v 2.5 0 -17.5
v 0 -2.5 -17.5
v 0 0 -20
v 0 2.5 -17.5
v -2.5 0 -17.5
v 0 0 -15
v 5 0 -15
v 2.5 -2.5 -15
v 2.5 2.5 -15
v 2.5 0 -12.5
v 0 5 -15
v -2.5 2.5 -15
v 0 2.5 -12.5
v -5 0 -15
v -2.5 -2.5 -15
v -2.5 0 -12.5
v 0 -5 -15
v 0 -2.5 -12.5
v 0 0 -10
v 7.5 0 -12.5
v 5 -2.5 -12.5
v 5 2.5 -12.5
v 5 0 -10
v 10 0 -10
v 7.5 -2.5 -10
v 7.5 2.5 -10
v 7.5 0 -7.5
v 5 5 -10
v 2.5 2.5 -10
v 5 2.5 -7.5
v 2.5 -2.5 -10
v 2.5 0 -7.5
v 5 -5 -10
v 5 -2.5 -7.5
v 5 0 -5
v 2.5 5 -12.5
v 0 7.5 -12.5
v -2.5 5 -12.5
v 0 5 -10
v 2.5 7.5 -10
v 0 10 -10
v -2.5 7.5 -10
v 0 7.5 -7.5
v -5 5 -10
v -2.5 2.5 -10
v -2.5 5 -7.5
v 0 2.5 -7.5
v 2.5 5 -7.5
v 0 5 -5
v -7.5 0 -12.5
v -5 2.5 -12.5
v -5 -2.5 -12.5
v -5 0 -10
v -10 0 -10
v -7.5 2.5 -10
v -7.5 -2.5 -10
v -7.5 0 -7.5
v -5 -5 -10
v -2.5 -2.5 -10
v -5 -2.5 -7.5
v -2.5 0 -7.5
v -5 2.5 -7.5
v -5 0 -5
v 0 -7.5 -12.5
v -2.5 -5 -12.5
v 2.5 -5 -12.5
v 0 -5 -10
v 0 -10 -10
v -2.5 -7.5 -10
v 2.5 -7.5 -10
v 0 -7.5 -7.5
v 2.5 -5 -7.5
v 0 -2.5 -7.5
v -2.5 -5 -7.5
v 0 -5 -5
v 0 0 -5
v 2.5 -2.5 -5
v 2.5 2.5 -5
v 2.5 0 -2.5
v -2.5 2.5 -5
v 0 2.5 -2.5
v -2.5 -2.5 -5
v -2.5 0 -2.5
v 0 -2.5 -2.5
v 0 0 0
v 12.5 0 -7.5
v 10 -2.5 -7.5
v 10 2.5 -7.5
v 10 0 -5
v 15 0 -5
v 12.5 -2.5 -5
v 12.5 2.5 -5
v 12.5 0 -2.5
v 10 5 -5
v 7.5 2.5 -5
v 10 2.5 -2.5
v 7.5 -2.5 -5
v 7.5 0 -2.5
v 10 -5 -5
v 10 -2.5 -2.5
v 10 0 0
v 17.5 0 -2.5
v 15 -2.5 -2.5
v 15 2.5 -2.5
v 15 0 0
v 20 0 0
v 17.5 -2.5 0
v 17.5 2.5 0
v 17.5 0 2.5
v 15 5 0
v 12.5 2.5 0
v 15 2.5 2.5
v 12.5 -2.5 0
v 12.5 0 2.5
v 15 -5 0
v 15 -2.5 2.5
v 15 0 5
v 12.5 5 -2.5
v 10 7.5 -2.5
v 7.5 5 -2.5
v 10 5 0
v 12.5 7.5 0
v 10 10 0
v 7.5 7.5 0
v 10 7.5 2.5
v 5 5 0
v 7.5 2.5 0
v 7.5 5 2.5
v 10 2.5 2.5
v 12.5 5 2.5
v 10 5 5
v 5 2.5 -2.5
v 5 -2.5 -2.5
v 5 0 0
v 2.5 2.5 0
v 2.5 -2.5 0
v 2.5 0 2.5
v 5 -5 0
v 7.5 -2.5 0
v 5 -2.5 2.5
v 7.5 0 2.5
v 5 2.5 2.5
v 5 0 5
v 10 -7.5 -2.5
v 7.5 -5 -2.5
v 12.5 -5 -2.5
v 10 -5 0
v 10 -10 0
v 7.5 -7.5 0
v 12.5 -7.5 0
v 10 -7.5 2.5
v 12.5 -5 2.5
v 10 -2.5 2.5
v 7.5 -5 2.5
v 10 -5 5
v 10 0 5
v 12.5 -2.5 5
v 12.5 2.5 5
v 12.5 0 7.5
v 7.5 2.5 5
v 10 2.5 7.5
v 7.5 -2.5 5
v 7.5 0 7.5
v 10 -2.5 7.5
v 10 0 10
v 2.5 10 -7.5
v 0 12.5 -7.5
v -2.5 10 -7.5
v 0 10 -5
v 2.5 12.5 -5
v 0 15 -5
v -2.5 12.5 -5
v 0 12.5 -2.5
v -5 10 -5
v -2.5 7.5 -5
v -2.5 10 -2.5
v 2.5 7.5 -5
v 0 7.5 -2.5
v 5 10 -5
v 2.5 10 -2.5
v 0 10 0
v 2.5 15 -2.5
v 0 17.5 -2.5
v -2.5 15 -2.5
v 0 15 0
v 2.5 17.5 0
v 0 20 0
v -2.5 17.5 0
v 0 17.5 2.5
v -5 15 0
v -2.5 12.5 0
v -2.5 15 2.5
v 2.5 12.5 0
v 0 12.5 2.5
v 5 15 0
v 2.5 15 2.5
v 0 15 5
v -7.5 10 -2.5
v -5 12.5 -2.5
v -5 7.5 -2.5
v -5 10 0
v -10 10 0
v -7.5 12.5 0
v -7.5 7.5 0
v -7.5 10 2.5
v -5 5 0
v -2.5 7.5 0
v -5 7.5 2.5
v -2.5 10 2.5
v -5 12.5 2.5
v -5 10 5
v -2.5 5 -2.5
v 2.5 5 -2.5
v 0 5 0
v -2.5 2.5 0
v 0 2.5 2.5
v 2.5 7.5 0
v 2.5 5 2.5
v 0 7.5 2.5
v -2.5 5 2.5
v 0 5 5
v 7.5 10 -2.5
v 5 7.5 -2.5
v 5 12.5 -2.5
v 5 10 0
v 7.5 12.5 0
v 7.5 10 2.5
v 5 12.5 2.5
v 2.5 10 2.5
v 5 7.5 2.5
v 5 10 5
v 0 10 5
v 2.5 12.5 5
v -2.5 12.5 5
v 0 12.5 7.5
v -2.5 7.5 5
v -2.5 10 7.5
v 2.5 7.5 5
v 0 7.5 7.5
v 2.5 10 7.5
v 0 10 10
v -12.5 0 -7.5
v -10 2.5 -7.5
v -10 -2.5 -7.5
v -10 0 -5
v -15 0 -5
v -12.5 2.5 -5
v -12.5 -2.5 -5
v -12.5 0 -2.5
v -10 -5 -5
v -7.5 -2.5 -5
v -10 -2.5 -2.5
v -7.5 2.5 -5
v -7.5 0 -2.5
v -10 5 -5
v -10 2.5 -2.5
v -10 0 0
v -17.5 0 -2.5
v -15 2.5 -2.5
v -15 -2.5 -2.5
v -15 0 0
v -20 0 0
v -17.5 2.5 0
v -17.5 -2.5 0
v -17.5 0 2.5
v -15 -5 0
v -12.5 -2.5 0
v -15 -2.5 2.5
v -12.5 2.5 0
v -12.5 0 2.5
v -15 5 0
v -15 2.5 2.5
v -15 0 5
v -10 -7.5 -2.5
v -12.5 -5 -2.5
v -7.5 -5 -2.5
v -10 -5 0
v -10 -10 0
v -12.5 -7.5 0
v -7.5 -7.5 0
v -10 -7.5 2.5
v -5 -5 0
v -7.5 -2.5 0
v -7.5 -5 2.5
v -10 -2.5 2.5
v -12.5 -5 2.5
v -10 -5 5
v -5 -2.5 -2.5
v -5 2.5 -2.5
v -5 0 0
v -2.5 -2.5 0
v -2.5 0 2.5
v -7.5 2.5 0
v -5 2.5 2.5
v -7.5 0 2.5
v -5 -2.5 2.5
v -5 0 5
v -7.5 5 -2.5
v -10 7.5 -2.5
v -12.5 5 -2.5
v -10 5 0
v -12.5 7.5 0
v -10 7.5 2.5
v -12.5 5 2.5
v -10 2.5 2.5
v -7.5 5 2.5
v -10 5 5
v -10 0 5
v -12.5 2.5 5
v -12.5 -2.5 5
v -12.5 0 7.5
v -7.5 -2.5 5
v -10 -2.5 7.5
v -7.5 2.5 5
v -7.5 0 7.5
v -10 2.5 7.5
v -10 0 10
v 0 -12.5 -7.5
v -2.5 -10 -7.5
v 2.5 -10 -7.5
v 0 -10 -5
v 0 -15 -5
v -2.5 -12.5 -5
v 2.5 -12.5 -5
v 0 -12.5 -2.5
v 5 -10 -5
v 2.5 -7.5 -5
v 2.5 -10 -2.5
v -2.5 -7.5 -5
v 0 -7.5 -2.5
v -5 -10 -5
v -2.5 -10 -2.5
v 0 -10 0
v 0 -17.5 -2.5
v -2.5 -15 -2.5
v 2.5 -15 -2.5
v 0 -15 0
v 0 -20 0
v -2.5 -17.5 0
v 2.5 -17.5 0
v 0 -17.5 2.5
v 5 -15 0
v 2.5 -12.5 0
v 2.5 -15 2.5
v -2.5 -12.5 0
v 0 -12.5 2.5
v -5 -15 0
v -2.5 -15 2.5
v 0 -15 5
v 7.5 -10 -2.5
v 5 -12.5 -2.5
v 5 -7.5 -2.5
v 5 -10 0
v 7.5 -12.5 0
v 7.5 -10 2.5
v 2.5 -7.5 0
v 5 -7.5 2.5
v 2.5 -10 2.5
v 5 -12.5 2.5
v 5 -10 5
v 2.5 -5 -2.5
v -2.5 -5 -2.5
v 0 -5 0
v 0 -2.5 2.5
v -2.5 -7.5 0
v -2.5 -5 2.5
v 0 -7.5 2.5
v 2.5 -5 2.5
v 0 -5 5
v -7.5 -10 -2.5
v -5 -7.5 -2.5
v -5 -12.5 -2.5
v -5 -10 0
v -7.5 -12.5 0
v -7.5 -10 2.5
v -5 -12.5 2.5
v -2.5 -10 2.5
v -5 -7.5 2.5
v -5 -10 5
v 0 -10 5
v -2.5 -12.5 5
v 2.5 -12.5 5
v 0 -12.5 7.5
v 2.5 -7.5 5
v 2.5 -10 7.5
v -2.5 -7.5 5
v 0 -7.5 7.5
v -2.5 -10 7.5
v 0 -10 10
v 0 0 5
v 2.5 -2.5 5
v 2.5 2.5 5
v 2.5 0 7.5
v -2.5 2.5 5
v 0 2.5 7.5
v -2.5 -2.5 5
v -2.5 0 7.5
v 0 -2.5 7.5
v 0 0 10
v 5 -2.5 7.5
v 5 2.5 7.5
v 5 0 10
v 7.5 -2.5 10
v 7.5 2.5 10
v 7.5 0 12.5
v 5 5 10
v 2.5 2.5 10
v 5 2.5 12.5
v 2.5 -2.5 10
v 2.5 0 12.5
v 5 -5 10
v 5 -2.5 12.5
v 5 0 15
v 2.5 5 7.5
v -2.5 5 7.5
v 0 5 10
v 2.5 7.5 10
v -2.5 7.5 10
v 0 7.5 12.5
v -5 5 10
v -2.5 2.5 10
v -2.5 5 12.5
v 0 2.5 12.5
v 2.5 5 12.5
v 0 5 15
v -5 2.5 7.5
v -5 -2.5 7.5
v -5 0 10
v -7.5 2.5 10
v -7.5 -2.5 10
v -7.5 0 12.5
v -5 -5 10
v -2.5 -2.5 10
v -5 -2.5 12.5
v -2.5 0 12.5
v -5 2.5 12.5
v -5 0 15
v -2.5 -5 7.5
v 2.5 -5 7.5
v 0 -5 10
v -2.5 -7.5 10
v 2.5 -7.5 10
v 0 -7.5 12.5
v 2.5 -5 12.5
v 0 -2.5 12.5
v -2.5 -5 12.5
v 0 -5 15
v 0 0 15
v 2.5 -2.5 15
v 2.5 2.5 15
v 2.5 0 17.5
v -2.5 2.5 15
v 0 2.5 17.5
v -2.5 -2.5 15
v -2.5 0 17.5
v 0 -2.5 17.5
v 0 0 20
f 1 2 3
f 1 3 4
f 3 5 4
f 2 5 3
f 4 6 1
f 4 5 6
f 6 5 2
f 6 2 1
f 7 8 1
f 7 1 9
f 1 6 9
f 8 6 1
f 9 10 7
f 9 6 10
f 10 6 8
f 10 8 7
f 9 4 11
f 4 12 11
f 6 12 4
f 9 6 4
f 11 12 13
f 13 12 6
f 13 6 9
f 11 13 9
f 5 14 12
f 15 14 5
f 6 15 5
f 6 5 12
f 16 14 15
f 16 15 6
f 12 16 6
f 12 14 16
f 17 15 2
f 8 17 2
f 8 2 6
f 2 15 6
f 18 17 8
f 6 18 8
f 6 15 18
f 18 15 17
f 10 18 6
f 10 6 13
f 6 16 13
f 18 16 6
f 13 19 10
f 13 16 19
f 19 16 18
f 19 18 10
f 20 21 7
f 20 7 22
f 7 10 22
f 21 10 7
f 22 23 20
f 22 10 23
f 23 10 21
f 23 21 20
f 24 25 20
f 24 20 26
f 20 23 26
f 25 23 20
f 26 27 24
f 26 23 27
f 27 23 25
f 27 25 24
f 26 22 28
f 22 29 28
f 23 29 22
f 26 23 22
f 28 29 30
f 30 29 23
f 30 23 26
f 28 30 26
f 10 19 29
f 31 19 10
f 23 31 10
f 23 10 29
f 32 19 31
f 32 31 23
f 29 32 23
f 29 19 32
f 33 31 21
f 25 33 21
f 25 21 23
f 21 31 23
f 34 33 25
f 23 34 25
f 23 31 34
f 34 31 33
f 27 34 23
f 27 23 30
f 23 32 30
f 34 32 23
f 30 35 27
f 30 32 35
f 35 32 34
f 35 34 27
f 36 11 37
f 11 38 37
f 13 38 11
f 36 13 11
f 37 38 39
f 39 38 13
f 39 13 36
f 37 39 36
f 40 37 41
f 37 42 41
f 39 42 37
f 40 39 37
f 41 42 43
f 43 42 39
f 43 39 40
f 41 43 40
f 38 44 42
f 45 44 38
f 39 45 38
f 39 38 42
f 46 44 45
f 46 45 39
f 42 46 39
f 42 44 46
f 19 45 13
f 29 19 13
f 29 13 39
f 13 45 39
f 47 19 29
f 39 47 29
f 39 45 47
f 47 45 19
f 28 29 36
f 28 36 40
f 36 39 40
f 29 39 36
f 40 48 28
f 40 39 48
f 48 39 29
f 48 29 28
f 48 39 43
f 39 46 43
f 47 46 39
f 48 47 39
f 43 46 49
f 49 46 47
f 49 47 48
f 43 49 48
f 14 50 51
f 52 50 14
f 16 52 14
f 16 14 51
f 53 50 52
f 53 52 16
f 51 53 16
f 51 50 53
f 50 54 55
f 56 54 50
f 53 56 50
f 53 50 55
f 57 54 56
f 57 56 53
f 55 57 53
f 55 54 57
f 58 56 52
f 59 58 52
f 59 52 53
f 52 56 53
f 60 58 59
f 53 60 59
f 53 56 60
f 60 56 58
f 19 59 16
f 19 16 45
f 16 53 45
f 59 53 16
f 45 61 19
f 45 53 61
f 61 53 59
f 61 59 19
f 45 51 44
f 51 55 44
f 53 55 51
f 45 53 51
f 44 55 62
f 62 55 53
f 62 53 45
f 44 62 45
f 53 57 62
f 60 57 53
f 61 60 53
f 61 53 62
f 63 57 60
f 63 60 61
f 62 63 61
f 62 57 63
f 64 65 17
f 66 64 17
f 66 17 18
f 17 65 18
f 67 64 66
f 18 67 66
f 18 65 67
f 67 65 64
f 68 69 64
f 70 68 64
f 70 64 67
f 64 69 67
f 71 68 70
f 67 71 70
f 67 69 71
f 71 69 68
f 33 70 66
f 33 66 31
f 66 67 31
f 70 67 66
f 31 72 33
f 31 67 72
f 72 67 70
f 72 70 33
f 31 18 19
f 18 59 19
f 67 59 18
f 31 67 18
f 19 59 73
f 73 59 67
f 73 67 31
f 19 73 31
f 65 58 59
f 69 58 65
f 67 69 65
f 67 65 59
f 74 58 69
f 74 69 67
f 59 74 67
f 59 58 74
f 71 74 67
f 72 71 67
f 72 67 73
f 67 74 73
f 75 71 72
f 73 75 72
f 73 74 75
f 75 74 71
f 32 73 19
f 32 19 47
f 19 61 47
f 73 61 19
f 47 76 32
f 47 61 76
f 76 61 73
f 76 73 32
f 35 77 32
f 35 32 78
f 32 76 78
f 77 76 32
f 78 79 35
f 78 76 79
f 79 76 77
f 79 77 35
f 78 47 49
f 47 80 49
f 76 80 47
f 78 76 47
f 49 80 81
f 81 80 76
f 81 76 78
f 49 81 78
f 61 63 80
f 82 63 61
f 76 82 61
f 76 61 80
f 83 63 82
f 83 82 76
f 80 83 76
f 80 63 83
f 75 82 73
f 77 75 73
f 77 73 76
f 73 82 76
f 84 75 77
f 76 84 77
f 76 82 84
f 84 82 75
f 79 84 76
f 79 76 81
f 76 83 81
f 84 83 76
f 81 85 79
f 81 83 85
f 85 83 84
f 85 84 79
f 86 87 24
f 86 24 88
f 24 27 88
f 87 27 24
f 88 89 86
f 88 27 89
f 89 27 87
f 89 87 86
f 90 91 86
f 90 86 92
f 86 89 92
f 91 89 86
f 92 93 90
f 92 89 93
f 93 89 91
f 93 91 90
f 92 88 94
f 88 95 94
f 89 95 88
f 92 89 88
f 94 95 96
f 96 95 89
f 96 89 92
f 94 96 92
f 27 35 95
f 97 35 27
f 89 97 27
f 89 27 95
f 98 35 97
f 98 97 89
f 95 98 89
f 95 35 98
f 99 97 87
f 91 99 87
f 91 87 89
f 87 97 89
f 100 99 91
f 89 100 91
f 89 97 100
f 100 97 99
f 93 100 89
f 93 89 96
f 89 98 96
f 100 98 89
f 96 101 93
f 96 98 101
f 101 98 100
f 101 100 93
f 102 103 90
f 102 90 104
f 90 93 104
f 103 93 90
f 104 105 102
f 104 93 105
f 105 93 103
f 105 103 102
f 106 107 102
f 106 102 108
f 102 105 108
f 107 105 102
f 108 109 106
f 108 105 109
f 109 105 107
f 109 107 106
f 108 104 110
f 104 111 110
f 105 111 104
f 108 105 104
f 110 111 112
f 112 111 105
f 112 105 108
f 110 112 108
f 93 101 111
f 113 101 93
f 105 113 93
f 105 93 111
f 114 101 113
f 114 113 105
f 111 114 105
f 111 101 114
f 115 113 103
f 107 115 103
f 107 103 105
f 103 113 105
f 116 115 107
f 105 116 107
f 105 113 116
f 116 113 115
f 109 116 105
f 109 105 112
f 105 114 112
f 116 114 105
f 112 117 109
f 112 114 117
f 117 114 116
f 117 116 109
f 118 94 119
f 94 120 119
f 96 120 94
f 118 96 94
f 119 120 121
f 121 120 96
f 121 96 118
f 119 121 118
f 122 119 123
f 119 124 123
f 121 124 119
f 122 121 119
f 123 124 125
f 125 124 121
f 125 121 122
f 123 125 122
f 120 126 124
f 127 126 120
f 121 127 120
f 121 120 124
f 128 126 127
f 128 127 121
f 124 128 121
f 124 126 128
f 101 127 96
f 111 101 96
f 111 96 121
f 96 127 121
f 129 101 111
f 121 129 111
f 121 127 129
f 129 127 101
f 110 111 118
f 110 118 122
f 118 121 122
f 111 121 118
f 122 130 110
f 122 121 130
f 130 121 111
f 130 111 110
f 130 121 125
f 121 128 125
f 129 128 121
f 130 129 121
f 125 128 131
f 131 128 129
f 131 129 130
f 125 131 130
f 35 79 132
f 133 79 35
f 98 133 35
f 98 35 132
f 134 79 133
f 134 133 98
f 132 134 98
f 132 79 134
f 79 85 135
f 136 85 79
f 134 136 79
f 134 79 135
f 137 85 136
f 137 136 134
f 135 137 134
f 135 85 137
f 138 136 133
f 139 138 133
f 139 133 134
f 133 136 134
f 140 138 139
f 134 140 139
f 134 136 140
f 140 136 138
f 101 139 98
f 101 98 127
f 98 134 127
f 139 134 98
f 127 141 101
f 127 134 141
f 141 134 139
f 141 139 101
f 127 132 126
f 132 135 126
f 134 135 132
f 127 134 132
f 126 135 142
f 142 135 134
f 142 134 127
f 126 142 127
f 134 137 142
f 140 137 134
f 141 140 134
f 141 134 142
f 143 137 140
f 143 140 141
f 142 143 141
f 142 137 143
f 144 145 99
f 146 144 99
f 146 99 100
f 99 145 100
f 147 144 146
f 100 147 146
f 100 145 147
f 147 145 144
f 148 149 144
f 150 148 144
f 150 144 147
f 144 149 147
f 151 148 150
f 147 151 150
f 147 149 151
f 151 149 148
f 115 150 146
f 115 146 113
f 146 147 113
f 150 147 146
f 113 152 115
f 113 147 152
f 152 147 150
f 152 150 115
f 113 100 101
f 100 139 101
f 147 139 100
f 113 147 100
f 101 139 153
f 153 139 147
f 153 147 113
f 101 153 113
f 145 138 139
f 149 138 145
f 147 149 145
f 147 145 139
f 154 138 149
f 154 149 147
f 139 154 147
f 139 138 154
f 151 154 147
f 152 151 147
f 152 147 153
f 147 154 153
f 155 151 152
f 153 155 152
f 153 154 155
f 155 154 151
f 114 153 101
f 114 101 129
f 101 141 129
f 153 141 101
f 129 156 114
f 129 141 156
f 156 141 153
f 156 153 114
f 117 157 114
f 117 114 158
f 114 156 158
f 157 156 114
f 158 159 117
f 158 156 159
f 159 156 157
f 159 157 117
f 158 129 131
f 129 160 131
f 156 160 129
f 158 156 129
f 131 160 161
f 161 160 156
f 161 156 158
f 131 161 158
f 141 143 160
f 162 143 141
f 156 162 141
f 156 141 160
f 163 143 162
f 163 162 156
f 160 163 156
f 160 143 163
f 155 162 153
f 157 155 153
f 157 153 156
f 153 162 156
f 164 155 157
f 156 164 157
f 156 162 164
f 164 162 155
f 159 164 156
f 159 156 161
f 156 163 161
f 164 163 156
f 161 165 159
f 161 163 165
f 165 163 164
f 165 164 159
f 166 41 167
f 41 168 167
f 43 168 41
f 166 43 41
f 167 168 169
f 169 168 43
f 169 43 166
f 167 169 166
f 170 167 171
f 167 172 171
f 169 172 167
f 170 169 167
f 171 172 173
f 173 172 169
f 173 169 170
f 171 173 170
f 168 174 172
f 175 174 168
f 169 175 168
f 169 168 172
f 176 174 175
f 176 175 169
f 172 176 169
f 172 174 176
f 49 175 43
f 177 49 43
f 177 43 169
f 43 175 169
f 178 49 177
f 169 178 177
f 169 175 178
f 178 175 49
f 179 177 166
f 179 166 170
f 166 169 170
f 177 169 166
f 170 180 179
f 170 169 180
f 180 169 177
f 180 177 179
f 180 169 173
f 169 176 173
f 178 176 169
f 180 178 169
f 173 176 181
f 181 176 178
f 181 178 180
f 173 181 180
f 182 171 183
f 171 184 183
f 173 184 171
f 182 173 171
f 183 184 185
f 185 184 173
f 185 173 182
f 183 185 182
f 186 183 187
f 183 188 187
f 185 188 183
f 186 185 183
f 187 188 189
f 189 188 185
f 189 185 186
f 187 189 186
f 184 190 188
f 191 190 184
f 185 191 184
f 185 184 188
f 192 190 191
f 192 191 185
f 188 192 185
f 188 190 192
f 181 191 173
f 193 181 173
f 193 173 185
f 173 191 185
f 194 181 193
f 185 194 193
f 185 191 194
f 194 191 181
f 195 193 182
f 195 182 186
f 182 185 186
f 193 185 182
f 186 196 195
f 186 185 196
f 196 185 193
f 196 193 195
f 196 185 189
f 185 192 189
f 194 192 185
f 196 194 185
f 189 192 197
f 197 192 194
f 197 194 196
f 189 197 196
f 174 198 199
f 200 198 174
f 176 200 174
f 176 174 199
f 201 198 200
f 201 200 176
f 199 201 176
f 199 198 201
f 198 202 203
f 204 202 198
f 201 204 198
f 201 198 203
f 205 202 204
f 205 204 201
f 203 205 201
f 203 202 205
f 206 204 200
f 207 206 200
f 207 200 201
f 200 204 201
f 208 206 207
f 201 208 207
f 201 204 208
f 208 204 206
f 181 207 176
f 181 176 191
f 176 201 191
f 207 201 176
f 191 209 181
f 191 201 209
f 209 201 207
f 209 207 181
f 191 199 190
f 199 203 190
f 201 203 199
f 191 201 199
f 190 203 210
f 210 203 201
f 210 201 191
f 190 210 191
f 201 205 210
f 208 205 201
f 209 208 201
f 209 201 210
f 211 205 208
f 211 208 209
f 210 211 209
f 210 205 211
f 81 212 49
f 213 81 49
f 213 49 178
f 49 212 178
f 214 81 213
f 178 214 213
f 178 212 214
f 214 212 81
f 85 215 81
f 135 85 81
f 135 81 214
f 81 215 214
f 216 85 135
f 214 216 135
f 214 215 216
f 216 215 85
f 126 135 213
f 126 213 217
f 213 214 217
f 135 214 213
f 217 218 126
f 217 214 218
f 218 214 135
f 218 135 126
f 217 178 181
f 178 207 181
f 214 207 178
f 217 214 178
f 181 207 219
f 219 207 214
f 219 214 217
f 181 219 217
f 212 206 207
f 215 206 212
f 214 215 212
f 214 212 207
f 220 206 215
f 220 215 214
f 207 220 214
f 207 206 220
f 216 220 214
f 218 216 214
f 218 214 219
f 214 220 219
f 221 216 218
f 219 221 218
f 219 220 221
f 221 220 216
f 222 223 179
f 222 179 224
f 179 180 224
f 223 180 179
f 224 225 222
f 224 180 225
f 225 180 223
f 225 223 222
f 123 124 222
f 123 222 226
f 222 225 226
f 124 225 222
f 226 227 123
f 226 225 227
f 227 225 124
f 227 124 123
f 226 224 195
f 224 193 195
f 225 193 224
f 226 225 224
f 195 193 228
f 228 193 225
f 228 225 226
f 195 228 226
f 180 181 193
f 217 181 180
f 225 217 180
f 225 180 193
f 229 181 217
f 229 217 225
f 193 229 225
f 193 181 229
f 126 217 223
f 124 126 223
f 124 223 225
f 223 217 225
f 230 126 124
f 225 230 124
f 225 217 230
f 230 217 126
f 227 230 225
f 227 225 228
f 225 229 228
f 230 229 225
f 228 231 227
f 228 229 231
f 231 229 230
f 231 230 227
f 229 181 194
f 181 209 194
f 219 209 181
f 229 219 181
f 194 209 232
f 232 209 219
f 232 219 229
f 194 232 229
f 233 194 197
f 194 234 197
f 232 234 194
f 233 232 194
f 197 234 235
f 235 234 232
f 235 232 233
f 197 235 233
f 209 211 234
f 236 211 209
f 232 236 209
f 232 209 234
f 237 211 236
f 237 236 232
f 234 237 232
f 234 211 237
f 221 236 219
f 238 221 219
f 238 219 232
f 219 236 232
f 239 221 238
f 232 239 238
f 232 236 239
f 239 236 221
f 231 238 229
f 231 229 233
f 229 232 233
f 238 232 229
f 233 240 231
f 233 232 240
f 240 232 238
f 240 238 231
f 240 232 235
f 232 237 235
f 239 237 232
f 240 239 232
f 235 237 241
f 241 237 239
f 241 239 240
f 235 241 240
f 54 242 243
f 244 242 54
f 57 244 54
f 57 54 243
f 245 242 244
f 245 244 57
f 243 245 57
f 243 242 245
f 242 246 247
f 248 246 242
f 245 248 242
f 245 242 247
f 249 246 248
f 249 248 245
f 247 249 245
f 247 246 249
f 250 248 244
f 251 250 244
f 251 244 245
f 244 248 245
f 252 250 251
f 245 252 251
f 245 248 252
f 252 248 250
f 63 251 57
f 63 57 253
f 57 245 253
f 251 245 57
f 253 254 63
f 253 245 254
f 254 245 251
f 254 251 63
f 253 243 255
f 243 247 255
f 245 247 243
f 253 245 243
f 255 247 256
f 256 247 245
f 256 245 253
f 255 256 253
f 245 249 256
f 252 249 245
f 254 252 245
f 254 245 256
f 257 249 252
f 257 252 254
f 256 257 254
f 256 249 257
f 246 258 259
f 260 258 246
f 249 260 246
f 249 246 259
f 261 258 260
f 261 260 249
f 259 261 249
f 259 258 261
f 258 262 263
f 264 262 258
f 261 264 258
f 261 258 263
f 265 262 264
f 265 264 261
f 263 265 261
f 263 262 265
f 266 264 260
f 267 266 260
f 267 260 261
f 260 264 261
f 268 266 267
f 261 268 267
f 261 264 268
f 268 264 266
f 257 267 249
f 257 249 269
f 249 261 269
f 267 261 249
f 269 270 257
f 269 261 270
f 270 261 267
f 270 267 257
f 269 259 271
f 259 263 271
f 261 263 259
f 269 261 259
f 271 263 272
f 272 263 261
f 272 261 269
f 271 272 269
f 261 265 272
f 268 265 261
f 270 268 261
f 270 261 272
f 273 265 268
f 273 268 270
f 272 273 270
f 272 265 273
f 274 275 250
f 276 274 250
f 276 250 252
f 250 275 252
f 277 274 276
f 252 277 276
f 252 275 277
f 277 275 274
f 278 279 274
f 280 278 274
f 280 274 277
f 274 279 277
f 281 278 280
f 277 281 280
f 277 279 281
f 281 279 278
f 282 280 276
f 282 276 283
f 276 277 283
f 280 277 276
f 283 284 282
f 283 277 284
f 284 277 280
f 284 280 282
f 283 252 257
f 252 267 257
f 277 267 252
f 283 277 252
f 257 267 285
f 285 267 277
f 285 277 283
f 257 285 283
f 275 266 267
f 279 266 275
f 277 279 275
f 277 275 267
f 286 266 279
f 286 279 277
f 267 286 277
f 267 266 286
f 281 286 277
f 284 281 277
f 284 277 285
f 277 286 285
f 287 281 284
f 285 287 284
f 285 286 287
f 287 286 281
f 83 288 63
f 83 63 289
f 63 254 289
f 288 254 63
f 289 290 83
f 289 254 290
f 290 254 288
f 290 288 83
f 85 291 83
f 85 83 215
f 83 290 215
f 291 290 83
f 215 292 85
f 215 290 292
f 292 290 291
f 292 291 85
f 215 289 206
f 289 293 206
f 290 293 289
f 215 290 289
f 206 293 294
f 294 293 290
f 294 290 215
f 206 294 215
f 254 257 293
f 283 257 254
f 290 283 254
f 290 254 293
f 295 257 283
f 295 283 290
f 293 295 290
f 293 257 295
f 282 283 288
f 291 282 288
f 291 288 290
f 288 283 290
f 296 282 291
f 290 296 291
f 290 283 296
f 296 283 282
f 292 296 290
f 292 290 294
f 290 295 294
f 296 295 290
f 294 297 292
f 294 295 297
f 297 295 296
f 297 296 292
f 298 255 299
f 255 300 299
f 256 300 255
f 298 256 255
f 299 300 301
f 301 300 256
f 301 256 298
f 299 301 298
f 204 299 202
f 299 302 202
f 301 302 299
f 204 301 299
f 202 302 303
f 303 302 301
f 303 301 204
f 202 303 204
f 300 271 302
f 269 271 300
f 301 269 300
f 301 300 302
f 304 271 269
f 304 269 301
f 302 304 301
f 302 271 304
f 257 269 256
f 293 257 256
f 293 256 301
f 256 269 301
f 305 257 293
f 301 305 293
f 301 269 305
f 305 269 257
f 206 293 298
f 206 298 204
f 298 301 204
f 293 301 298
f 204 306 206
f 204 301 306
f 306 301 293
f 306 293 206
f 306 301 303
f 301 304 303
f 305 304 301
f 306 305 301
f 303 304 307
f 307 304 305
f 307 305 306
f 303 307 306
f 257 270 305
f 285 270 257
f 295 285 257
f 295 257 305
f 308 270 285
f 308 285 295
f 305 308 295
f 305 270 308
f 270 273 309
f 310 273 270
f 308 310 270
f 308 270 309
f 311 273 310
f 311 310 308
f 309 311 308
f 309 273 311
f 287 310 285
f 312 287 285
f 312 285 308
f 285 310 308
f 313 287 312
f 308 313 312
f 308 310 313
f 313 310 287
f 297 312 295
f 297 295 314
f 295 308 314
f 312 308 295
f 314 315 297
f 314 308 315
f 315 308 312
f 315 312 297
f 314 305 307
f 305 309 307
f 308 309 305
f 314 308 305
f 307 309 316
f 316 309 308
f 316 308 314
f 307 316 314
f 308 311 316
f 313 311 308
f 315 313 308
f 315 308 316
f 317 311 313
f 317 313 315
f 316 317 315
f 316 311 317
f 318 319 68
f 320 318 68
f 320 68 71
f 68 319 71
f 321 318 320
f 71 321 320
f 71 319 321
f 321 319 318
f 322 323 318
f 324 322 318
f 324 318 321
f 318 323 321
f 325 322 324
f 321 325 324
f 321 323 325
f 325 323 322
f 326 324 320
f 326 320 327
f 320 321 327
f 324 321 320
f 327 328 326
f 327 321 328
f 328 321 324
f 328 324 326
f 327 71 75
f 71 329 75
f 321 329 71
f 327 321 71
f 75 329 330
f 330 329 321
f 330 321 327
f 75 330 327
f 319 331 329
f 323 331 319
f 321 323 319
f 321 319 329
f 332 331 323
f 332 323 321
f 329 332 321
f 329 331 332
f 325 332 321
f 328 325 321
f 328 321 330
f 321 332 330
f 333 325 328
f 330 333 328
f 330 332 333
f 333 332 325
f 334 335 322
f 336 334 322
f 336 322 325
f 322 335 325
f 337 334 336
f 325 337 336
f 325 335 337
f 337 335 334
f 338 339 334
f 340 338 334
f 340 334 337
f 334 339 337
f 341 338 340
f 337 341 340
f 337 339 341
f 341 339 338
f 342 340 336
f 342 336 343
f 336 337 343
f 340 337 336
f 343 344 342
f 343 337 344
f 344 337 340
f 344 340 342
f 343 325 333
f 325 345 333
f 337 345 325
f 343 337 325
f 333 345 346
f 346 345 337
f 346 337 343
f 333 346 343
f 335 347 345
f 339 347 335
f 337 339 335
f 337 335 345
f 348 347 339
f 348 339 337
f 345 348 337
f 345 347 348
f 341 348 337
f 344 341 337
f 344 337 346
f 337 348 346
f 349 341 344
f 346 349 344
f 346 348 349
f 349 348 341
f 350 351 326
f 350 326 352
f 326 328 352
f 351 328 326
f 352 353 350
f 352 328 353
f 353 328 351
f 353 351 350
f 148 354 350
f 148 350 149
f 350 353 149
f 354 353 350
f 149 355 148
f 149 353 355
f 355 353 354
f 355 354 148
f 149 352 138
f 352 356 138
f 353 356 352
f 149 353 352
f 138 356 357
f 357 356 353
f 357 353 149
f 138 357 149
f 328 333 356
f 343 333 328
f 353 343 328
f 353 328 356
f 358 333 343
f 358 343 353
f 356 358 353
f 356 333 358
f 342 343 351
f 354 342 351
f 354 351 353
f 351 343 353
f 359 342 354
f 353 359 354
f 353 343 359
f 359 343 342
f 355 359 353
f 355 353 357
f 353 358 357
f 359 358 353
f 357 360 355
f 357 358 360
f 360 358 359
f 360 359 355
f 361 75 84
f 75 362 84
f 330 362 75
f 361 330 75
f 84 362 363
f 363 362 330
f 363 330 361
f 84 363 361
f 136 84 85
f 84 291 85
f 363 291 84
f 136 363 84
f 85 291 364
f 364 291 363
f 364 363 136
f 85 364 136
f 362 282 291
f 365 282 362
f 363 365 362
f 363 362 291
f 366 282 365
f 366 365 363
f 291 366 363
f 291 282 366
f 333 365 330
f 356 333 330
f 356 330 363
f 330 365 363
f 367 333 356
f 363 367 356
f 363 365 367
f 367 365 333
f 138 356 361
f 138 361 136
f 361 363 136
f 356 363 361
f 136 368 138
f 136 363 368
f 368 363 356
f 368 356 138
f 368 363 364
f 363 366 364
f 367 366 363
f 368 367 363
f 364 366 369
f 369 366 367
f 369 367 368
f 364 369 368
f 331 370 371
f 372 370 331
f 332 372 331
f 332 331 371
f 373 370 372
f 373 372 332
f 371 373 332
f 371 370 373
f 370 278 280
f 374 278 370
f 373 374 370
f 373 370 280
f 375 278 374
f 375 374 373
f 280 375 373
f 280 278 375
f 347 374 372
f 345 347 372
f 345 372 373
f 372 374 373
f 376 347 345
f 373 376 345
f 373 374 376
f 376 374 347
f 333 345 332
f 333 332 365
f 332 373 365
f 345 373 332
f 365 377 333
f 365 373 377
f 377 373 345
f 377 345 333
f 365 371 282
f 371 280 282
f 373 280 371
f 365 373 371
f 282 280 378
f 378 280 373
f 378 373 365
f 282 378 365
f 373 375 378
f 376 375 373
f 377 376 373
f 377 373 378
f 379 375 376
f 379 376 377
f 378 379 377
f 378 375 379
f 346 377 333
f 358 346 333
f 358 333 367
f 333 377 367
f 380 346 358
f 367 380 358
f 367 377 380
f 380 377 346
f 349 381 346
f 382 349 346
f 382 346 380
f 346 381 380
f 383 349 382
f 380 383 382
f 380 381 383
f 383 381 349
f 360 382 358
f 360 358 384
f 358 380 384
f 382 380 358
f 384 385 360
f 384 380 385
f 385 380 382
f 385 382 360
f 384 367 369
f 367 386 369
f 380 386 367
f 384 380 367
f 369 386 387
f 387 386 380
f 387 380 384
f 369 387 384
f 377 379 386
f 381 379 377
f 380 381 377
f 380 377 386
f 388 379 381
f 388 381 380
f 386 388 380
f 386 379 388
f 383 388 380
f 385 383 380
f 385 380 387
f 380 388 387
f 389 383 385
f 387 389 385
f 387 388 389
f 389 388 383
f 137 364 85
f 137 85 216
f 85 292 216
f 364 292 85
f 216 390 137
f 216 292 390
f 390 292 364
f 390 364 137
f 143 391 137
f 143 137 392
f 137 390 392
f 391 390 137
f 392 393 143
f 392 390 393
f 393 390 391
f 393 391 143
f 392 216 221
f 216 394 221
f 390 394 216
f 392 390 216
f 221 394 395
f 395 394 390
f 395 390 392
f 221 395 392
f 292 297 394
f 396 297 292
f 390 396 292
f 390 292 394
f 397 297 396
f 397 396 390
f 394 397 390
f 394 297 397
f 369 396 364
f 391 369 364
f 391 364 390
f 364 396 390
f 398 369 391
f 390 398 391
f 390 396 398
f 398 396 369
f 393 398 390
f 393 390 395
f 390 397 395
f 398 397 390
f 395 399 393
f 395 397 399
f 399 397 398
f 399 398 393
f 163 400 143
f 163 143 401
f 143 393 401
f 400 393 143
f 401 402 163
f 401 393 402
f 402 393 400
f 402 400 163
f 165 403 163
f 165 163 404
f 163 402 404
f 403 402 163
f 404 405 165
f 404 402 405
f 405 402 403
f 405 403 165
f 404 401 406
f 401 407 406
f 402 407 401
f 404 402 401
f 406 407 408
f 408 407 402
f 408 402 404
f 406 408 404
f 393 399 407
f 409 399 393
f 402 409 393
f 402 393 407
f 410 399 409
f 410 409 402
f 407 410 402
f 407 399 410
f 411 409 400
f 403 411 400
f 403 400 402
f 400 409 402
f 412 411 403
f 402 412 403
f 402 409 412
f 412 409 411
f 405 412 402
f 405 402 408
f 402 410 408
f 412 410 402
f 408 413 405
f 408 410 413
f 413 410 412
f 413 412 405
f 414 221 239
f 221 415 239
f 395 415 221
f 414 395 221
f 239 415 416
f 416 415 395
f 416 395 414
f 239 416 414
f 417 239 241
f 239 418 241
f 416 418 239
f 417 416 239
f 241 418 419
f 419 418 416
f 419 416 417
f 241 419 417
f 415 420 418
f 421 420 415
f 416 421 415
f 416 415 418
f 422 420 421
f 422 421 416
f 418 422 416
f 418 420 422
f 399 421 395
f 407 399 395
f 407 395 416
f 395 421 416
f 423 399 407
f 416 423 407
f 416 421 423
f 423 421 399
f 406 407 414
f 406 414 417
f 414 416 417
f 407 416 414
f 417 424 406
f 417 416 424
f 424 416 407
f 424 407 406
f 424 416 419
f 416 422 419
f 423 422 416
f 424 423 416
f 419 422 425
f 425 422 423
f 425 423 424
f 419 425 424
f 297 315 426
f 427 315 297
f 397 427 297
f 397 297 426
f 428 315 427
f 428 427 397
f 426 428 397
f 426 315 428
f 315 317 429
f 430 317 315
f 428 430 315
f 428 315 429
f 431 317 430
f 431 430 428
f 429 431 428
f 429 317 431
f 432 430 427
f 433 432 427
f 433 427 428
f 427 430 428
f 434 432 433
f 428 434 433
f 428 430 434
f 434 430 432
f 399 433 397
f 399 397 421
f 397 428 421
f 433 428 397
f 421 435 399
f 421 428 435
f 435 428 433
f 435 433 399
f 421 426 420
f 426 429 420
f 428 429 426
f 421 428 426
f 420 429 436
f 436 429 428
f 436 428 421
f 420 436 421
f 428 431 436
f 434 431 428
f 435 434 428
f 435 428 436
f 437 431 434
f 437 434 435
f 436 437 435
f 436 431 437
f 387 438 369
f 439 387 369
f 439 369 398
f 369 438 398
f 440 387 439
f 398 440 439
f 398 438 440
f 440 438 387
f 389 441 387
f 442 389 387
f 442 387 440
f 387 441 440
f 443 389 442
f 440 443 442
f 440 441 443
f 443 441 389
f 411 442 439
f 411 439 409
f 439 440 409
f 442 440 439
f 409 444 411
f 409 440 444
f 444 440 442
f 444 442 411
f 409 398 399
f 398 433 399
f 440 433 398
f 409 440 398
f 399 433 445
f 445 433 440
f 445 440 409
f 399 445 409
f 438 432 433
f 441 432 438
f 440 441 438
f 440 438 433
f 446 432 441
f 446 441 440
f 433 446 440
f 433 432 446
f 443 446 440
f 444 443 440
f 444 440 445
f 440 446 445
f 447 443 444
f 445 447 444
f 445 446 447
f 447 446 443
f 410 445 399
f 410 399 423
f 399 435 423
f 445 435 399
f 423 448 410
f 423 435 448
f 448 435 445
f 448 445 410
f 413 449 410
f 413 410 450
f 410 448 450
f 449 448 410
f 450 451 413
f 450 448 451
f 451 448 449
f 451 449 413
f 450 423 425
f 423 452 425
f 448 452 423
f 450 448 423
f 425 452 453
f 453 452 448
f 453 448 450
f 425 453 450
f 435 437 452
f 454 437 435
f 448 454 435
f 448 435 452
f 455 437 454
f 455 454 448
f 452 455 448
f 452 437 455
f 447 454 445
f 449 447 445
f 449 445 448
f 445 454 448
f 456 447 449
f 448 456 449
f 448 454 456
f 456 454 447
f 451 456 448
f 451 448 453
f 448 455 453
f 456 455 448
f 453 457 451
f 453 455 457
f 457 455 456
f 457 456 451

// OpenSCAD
module drawOctahedron(a, b, c, d,e,f, iter) {
    if (iter == 0) {
         polyhedron([a, b, c, d,e, f], faces = [[0,1,4],
        [0,2,1],[0,3,2],[0,4,3],[5,1,2],[5,2,3],[5,3,4],[5,4,1]
]);
    } else {
        ab = 0.5 * (a + b);
        ac = 0.5 * (a + c);
        ad = 0.5 * (a + d);
        ae = 0.5 * (a + e);
        af = 0.5 * (a + f);
        bc = 0.5 * (b + c);
        bd = 0.5 * (b + d);
        be = 0.5 * (b + e);
        bf = 0.5 * (b + f);
        cd = 0.5 * (c + d);
        ce = 0.5 * (c + e);
        cf = 0.5 * (c + f);
                de = 0.5 * (d+e);
                df = 0.5 * (d+f);
                ef = 0.5 * (e+f);
    drawOctahedron(a,ab,ac,ad,ae,af, iter-1) ;  
    drawOctahedron(ab,b,bc,bd,be,bf, iter-1) ;  
    drawOctahedron(ac,c,cd,ce,bc,cf, iter-1) ;  
    drawOctahedron(ad,d,de,bd,cd,df, iter-1) ;  
    drawOctahedron(ae,e,be,ce,de,ef, iter-1) ;  
    drawOctahedron(af,bf,cf,df,ef,f, iter-1) ;  

    }
}


s=20;
a=s*[0,0,-1];
b=s*[1,0,0];
c=s*[0,1,0];
d=s*[-1,0,0];
e=s*[0,-1,0];
f=s*[0,0,1];
ex = 0.2;

//minkowski() {
    drawOctahedron(a, b, c, d,e,f, 3) ;  
//    sphere(r = ex);
//}
